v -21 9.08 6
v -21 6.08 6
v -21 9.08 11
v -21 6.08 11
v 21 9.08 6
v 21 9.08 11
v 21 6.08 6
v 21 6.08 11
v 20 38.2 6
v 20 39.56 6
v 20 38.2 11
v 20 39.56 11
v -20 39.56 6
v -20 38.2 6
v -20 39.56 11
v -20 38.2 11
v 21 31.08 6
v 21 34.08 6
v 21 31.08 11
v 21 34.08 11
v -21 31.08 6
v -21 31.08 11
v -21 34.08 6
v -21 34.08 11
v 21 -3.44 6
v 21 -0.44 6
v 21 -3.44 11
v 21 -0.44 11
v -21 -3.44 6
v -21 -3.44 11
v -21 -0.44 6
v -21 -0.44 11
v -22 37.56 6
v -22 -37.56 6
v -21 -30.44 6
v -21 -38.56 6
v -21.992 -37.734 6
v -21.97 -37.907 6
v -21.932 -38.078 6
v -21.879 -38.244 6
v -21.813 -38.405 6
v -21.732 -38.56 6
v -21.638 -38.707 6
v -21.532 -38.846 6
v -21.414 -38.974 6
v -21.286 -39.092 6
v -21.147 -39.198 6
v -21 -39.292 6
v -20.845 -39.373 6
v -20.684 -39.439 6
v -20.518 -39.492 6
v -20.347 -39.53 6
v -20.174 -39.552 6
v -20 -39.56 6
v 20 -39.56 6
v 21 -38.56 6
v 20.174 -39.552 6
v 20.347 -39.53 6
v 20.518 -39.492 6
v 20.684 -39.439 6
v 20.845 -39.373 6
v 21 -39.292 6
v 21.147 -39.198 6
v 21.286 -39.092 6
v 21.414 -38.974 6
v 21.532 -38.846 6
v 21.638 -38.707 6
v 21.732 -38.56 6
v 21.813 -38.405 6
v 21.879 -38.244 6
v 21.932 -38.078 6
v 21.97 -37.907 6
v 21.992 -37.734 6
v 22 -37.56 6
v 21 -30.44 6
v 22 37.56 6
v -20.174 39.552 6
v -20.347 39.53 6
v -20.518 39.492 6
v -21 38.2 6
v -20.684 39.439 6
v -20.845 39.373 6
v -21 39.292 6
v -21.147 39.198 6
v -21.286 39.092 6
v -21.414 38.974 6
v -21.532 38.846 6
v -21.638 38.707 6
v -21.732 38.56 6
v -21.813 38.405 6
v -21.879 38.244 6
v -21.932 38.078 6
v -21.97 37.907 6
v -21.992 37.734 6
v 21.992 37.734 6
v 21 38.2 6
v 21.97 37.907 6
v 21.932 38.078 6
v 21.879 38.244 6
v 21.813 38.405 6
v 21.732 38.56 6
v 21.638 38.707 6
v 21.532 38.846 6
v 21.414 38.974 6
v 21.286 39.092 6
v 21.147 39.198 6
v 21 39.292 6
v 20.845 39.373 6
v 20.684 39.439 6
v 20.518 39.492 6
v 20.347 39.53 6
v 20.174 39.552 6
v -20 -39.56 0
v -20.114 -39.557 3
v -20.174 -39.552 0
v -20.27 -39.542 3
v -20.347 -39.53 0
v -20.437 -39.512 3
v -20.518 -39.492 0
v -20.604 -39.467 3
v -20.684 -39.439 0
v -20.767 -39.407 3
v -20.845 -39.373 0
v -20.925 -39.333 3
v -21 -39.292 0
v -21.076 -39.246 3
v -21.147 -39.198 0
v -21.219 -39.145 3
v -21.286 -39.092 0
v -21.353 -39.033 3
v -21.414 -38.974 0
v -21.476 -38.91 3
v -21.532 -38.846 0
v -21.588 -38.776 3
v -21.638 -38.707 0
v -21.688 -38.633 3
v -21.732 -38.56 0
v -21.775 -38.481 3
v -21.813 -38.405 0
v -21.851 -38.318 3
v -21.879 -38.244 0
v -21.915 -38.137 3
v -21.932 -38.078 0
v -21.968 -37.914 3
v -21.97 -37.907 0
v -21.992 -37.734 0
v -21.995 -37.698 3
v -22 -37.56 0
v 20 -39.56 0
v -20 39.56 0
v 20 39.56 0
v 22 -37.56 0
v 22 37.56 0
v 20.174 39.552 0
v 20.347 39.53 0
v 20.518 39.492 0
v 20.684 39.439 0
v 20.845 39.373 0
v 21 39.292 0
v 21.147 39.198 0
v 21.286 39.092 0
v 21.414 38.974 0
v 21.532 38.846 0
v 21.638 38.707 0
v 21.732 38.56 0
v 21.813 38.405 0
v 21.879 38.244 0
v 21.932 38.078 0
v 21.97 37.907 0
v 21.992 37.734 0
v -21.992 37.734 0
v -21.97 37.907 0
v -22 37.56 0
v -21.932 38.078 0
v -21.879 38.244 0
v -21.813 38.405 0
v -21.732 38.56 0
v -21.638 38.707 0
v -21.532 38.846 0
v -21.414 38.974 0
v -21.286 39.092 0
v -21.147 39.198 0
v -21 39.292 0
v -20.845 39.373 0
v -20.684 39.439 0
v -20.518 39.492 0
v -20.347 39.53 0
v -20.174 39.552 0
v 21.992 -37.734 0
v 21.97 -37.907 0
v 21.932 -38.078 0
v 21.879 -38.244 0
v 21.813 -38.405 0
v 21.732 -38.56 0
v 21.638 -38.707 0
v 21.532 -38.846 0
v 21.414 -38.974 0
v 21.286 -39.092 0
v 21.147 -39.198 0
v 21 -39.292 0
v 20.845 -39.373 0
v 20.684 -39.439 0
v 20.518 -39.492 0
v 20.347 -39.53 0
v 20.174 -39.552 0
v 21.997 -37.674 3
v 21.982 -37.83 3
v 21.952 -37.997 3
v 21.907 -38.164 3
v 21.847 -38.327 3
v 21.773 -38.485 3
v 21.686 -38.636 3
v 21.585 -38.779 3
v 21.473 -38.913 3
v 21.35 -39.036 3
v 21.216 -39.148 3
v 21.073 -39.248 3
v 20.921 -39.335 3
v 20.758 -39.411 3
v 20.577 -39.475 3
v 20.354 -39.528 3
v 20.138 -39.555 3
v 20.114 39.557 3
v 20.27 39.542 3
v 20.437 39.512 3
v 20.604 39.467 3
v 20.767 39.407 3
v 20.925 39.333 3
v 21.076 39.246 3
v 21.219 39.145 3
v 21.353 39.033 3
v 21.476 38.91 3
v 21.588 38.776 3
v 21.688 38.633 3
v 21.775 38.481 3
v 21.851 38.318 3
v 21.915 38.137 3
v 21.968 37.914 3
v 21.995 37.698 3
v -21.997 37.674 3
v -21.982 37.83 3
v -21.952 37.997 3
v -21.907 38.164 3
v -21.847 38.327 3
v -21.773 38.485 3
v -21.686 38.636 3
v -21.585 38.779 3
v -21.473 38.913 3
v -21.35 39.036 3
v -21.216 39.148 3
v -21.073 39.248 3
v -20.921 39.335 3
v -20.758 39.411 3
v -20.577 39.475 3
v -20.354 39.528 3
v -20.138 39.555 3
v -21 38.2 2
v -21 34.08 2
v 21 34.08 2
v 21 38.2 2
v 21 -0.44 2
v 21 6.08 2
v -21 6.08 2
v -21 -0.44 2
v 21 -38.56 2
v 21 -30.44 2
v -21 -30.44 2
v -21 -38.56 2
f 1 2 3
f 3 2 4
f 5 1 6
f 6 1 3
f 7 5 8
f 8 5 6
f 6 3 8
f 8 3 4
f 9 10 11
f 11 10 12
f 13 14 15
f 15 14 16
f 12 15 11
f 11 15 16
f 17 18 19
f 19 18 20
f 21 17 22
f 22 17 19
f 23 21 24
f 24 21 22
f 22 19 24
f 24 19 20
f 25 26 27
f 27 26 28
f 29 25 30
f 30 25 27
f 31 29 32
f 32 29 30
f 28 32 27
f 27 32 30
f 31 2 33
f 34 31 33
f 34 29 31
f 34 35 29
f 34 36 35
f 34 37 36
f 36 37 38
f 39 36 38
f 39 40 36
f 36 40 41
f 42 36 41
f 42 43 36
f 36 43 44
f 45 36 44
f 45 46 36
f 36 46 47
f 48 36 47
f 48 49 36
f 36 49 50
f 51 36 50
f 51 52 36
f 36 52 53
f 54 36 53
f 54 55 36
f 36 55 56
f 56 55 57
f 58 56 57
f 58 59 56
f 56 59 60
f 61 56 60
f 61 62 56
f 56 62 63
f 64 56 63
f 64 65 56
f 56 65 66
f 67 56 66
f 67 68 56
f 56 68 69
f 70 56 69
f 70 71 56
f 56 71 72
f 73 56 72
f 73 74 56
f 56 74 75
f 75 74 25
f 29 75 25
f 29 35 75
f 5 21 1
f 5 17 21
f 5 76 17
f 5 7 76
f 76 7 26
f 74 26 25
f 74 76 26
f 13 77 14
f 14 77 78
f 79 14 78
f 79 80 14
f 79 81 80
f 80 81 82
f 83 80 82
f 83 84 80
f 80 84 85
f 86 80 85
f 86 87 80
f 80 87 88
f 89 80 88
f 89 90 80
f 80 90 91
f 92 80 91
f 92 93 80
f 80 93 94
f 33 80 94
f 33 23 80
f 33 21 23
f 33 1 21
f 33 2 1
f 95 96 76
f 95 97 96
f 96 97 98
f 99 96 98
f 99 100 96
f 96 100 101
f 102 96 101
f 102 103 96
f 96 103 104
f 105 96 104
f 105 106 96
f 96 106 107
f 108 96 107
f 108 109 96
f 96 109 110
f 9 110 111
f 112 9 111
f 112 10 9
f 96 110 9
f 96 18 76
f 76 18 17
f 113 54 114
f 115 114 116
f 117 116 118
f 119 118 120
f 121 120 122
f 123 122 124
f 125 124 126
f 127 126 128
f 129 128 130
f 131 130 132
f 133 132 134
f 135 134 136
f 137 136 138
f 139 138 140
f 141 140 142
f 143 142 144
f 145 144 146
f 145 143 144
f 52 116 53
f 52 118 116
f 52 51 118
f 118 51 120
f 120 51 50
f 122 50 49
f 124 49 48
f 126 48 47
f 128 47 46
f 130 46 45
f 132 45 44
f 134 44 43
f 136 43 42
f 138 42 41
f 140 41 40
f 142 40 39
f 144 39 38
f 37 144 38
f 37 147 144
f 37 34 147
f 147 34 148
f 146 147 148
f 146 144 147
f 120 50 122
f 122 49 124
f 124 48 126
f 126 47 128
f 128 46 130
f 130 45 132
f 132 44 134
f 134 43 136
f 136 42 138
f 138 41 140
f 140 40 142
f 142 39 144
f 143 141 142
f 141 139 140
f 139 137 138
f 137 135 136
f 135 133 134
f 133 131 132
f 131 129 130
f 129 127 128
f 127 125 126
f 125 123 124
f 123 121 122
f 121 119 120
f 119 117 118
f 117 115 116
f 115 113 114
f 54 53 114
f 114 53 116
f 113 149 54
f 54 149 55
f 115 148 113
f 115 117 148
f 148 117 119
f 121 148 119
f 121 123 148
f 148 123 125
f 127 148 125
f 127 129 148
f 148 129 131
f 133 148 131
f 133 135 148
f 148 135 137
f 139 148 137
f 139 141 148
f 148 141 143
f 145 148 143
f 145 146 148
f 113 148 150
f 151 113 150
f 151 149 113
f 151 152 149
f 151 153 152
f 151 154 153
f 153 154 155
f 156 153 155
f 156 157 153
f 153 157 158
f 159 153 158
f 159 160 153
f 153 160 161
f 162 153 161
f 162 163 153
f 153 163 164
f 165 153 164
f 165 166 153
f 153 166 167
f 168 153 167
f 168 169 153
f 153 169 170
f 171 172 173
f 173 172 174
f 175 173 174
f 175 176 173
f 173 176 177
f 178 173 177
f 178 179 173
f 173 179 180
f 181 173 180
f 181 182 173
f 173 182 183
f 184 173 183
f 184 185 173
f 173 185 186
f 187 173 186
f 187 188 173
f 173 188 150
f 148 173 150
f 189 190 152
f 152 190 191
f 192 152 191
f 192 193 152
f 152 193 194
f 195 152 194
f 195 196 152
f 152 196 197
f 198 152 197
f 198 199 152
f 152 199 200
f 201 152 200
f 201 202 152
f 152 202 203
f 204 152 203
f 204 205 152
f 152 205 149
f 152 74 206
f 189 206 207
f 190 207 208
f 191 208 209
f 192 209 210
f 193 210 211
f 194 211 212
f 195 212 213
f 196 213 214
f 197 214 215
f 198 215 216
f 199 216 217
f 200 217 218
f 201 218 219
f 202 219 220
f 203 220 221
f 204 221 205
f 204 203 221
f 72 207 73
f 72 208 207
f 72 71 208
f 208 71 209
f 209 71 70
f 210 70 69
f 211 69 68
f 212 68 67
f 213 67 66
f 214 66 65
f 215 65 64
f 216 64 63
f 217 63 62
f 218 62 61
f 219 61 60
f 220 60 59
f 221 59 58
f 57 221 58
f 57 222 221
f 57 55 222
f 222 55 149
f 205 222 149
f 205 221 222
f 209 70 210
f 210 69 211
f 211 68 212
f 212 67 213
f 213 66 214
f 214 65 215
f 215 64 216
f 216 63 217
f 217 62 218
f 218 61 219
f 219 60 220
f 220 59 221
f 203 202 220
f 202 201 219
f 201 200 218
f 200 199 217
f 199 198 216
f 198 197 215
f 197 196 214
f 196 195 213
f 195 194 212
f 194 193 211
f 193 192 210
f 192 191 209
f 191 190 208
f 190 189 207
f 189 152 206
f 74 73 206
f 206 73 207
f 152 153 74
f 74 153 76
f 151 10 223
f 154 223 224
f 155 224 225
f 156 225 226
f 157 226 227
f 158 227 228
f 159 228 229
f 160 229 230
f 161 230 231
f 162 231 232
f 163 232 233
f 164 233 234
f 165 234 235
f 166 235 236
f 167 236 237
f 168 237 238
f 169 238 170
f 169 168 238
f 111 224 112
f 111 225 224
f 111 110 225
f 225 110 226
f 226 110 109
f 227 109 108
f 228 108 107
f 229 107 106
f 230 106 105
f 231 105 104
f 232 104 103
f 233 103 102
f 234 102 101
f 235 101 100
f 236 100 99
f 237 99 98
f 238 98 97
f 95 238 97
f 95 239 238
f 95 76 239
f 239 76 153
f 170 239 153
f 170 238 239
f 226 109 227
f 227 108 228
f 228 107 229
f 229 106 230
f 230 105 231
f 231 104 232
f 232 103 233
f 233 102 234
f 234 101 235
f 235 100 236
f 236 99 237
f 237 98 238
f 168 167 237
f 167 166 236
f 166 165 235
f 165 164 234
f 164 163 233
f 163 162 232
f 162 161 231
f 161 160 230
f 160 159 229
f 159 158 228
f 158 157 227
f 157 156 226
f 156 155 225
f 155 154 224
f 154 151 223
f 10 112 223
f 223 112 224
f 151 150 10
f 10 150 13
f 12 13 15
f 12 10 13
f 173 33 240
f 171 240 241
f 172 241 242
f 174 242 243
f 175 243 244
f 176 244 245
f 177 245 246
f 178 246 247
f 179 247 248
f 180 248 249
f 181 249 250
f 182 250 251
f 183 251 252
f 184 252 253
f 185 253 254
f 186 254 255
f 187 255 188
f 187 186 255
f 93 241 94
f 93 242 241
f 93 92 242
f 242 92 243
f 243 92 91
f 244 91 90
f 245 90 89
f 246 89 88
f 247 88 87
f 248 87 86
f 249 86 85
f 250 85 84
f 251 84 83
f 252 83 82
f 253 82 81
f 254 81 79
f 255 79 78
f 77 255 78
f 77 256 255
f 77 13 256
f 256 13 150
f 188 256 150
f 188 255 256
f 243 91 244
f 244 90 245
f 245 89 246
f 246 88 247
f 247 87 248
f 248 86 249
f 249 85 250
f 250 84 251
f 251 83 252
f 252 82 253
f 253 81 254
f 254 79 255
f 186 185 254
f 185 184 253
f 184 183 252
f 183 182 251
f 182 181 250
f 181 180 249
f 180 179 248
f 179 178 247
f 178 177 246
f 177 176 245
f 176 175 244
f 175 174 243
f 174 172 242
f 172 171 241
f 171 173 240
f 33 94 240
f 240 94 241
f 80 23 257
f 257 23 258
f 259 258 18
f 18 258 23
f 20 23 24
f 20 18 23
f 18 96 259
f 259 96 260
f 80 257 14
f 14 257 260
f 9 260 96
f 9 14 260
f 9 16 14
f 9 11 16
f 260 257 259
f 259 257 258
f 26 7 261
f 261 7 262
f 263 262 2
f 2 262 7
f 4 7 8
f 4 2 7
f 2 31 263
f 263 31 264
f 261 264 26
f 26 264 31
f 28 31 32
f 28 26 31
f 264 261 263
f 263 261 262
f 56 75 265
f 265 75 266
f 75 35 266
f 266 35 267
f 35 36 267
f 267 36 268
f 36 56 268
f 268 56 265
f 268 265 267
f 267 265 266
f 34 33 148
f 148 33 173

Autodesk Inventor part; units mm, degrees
ref_plane "YZ Plane" through (0, 0, 0) normal (1, 0, 0) x (0, 1, 0)
ref_plane "XZ Plane" through (0, 0, 0) normal (0, 1, 0) x (-1, 0, 0)
ref_plane "XY Plane" through (0, 0, 0) normal (0, 0, 1) x (1, 0, 0)
sketch "Base" plane through (0, 0, 0) normal (0, 0, 1) x (1, 0, 0)
  line L0 (-22, -39.56) -> (22, -39.56)
  line L1 (22, -39.56) -> (22, 39.56)
  line L2 (22, 39.56) -> (-22, 39.56)
  line L3 (-22, 39.56) -> (-22, -39.56)
  line L4 (-22, -39.56) -> (22, 39.56) construction
  line L5 (22, -39.56) -> (-22, 39.56) construction
  point P0 (0, 0)
  dimension "d56" = 44
  dimension "d57" = 79
extrude "Extrusion4" add sketch "Base" along normal blind 6
sketch "Slot1" plane through (0, 0, 6) normal (0, 0, 1) x (1, 0, 0)
  line L0 (21, -38.56) -> (-21, -38.56)
  line L1 (-21, -38.56) -> (-21, -30.44)
  line L2 (-21, -30.44) -> (21, -30.44)
  line L3 (21, -30.44) -> (21, -38.56)
  line L4 (21, -38.56) -> (-21, -30.44) construction
  line L5 (-21, -38.56) -> (21, -30.44) construction
  line L6 (22, -39.56) -> (22, 39.56) projected
  line L7 (-22, -39.56) -> (22, -39.56) projected
  point P0 (0, 0)
  point P1 (0, -34.5)
  dimension "d62" = 8.1
  dimension "d63" = 1
  dimension "d64" = 42
  dimension "d66" = 1
extrude "Slot1 slot" cut sketch "Slot1" against normal blind 4
sketch "Slot2" plane through (0, 0, 6) normal (0, 0, 1) x (1, 0, 0)
  line L0 (21, -0.44) -> (-21, -0.44)
  line L1 (-21, -0.44) -> (-21, 6.08)
  line L2 (-21, 6.08) -> (21, 6.08)
  line L3 (21, 6.08) -> (21, -0.44)
  line L4 (21, -0.44) -> (-21, 6.08) construction
  line L5 (-21, -0.44) -> (21, 6.08) construction
  line L6 (-22, 39.56) -> (-22, -39.56) projected
  line L7 (-21, -30.44) -> (21, -30.44) projected
  point P0 (0, 0)
  point P1 (0, 2.82)
  dimension "d75" = 6.5
  dimension "d76" = 42
  dimension "d77" = 1
  dimension "d80" = 30
extrude "Slot2 slot" cut sketch "Slot2" against normal blind 4
sketch "Slot3" plane through (0, 0, 6) normal (0, 0, 1) x (1, 0, 0)
  line L0 (-21, 38.2) -> (21, 38.2)
  line L1 (21, 38.2) -> (21, 34.08)
  line L2 (21, 34.08) -> (-21, 34.08)
  line L3 (-21, 34.08) -> (-21, 38.2)
  line L4 (-21, 38.2) -> (21, 34.08) construction
  line L5 (21, 38.2) -> (-21, 34.08) construction
  point P0 (0, 36.14)
  dimension "d83" = 4.1
  dimension "d84" = 42
extrude "Extrusion7" cut sketch "Slot3" against normal blind 4
fillet "Fillet1" radius 2 1 edges at (-22, 39.56, 3)
fillet "Fillet2" radius 2 1 edges at (22, 39.56, 3)
fillet "Fillet3" radius 2 1 edges at (22, -39.56, 3)
fillet "Fillet4" radius 2 1 edges at (-22, -39.56, 3)
sketch "Sketch14" plane through (0, 0, 6) normal (0, 0, 1) x (1, 0, 0)
  arc A0 (-22, -37.56) -> (-20, -39.56) centre (-20, -37.56) ccw projected
  line L0 (-20, -39.56) -> (20, -39.56) projected
  arc A1 (20, -39.56) -> (22, -37.56) centre (20, -37.56) ccw projected
  line L1 (22, -37.56) -> (22, 37.56) projected
  arc A2 (22, 37.56) -> (20, 39.56) centre (20, 37.56) ccw projected
  line L2 (20, 39.56) -> (-20, 39.56) projected
  arc A3 (-20, 39.56) -> (-22, 37.56) centre (-20, 37.56) ccw projected
  line L3 (-22, 37.56) -> (-22, -37.56) projected
  line L4 (-21, 34.08) -> (-21, 38.2) projected
  line L5 (-21, 38.2) -> (21, 38.2) projected
  line L6 (21, 38.2) -> (21, 34.08) projected
  line L7 (21, 34.08) -> (-21, 34.08) projected
  line L8 (21, 6.08) -> (21, -0.44) projected
  line L9 (21, -0.44) -> (-21, -0.44) projected
  line L10 (-21, -0.44) -> (-21, 6.08) projected
  line L11 (-21, 6.08) -> (21, 6.08) projected
  line L12 (21, -30.44) -> (21, -38.56) projected
  line L13 (21, -38.56) -> (-21, -38.56) projected
  line L14 (-21, -38.56) -> (-21, -30.44) projected
  line L15 (-21, -30.44) -> (21, -30.44) projected
  line L16 (20, 39.56) -> (-20, 39.56)
  line L17 (-20, 39.56) -> (-20, 38.2)
  line L18 (-20, 38.2) -> (20, 38.2)
  line L19 (20, 38.2) -> (20, 39.56)
  line L20 (-21, 38.2) -> (21, 38.2) projected
  line L21 (-21, 34.08) -> (21, 34.08)
  line L22 (21, 34.08) -> (21, 31.08)
  line L23 (21, 31.08) -> (-21, 31.08)
  line L24 (-21, 31.08) -> (-21, 34.08)
  line L25 (-21, 6.08) -> (21, 6.08)
  line L26 (21, 6.08) -> (21, 9.08)
  line L27 (21, 9.08) -> (-21, 9.08)
  line L28 (-21, 9.08) -> (-21, 6.08)
  line L29 (-21, -0.44) -> (21, -0.44)
  line L30 (21, -0.44) -> (21, -3.44)
  line L31 (21, -3.44) -> (-21, -3.44)
  line L32 (-21, -3.44) -> (-21, -0.44)
  dimension "d95" = 3
extrude "Extrusion9" add sketch "Sketch14" along normal blind 5 contours L2 L19 L5 L17 | L7 L22 L23 L24 | L11 L28 L27 L26 | L30 L31 L32 L9
equation "\"d56\" = basew"
equation "\"d57\" = baseh"
equation "\"d62\" = wall1slot"
equation "\"d63\" = -0.5 * wallw + 0.5 * basew"
equation "\"d64\" = wallw"
equation "\"d66\" = 0.5 * baseextra"
equation "\"d75\" = wall2slot"
equation "\"d76\" = wallw"
equation "\"d77\" = 0.5 * baseextra"
equation "\"d80\" = gap1"
equation "\"d83\" = wall3slot"
equation "\"d84\" = wallw"
equation "\"printer3dtolerance\" = 0.1"
equation "\"wallw\" = 42"
equation "\"wallh\" = 44"
equation "\"cornerrad\" = 2"
equation "\"baseextra\" = 2"
equation "\"wall1_thick\" = 8"
equation "\"wall2_thick\" = 6.4"
equation "\"wall3_thick\" = 4"
equation "\"wall1slot\" = 8.1"
equation "\"wall2slot\" = 6.5"
equation "\"wall3slot\" = 4.1"
equation "\"gap1\" = 30"
equation "\"gap2\" = 28"
equation "\"baseh\" = 79"
equation "\"basew\" = 44"
equation "\"base_thick\" = 6"
equation "\"base_slots_depth\" = 4"
equation "\"d26\" = 8.12"
equation "\"d27\" = 42"
equation "\"d28\" = 44"
equation "\"d29\" = 28"
equation "\"d31\" = 4.12"
equation "\"d32\" = 6.52"
equation "\"d33\" = 79.12"
equation "\"d39\" = 8.12"
equation "\"d40\" = 42"
equation "\"d41\" = 44"
equation "\"d48\" = 8.12"
equation "\"d49\" = 42"
equation "\"d50\" = 8.12"
equation "\"d51\" = 42"
equation "\"d52\" = 44"
equation "\"d53\" = 44"
equation "\"d71\" = 8.12"
equation "\"d72\" = 42"
equation "\"d73\" = 2"
equation "\"d74\" = 44"
equation "\"distancefrombottom\" = 34"
equation "\"servosmallcircledia\" = 5.9"
equation "\"servo9gw\" = 22.8"
equation "\"servomountsquare\" = 4"
equation "\"servopolygonl\" = 5.9"
equation "\"servopolygonr\" = 6.1"
equation "\"distancefromleft\" = 22"
equation "\"servobigcircledia\" = 11.6"
equation "\"servomounth\" = 4"
equation "\"wall3slotd\" = 2"
equation "\"wall3slotw\" = 36"
equation "\"adapterh\" = 16"
equation "\"adapterw\" = 32"
equation "\"wall3slotd_1\" = 2"
equation "\"armslotd\" = 2"
equation "\"armthick\" = 3"
equation "\"armw\" = 34"
equation "\"fanhs\" = 9.6"
equation "\"fanhb\" = 11"
equation "\"adapterwallslotd\" = 2"
equation "\"adapterwallthick\" = 6"
equation "\"hornscrewholed\" = 2"
equation "\"hornscrewheadd\" = 3"
equation "\"armhornthick\" = 3"
equation "\"hornthick\" = 1.5"
properties part number "base-frame" material "Wood (Oak)"
